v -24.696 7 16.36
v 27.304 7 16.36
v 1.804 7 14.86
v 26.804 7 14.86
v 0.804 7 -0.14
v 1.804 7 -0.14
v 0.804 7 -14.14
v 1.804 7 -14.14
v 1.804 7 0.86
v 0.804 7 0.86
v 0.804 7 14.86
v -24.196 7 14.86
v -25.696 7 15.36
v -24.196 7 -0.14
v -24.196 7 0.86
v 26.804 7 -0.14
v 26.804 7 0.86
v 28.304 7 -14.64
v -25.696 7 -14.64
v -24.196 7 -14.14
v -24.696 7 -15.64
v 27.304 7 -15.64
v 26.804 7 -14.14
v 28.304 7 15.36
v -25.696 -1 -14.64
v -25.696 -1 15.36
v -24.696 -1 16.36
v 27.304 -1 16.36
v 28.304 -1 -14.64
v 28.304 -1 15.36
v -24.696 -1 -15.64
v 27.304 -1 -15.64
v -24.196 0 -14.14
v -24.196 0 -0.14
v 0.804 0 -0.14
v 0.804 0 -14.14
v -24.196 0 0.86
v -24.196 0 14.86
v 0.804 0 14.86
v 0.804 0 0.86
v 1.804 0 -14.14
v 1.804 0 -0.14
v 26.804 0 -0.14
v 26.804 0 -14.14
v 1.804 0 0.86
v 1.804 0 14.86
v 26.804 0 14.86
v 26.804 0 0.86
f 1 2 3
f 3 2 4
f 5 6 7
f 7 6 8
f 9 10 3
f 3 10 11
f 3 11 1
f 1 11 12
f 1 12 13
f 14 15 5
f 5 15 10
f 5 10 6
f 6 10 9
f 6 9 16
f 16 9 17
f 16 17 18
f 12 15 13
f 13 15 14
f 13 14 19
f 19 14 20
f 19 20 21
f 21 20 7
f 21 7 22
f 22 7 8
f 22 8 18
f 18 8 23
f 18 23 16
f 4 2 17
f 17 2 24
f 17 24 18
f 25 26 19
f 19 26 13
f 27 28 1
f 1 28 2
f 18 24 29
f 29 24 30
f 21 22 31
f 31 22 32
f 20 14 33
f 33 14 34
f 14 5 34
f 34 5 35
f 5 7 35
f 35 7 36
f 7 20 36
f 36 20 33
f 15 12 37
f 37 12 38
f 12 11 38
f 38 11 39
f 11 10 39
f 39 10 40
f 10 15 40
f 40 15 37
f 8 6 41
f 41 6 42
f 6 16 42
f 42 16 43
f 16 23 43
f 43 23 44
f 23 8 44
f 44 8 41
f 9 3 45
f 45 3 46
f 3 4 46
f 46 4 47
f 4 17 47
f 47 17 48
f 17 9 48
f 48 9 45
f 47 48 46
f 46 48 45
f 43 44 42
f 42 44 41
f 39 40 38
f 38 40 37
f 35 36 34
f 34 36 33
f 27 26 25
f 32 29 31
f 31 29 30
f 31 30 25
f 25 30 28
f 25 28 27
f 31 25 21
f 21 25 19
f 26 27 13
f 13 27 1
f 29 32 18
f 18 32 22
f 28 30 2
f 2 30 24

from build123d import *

# Parameters (mm, degrees)
SKETCH1_W           = 54
SKETCH1_H           = 32
SKETCH1_W_2         = 25
SKETCH1_H_2         = 14
BOSS_EXTRUDE1_DEPTH = 7
SKETCH2_W           = 54
SKETCH2_H           = 32
BOSS_EXTRUDE2_DEPTH = 1
CHAMFER1_SIZE       = 1


with BuildPart() as part:
    # Sketch1 → Boss-Extrude1 (new body)
    with BuildSketch(Plane(origin=(0, 0, 0), x_dir=(1, 0, 0), z_dir=(0, 1, 0))):
        with Locations((1.304347826, -0.359533527)):
            Rectangle(SKETCH1_W, SKETCH1_H)
        with Locations((-11.695652174, 7.140466473)):
            Rectangle(SKETCH1_W_2, SKETCH1_H_2, mode=Mode.SUBTRACT)
        with Locations((-11.695652174, -7.859533527)):
            Rectangle(SKETCH1_W_2, SKETCH1_H_2, mode=Mode.SUBTRACT)
        with Locations((14.304347826, 7.140466473)):
            Rectangle(SKETCH1_W_2, SKETCH1_H_2, mode=Mode.SUBTRACT)
        with Locations((14.304347826, -7.859533527)):
            Rectangle(SKETCH1_W_2, SKETCH1_H_2, mode=Mode.SUBTRACT)
    extrude(amount=BOSS_EXTRUDE1_DEPTH)

    # Sketch2 → Boss-Extrude2 (add)
    with BuildSketch(Plane.XZ):
        with Locations((1.304347826, 0.359533527)):
            Rectangle(SKETCH2_W, SKETCH2_H)
    extrude(amount=BOSS_EXTRUDE2_DEPTH)

    # Chamfer1
    chamfer1_edges = [part.edges().sort_by_distance(p)[0] for p in [
        (-25.695652174, 3, -15.640466473),
        (28.304347826, 3, -15.640466473),
        (28.304347826, 3, 16.359533527),
        (-25.695652174, 3, 16.359533527),
    ]]
    chamfer(chamfer1_edges, length=CHAMFER1_SIZE)


solid = part.part
